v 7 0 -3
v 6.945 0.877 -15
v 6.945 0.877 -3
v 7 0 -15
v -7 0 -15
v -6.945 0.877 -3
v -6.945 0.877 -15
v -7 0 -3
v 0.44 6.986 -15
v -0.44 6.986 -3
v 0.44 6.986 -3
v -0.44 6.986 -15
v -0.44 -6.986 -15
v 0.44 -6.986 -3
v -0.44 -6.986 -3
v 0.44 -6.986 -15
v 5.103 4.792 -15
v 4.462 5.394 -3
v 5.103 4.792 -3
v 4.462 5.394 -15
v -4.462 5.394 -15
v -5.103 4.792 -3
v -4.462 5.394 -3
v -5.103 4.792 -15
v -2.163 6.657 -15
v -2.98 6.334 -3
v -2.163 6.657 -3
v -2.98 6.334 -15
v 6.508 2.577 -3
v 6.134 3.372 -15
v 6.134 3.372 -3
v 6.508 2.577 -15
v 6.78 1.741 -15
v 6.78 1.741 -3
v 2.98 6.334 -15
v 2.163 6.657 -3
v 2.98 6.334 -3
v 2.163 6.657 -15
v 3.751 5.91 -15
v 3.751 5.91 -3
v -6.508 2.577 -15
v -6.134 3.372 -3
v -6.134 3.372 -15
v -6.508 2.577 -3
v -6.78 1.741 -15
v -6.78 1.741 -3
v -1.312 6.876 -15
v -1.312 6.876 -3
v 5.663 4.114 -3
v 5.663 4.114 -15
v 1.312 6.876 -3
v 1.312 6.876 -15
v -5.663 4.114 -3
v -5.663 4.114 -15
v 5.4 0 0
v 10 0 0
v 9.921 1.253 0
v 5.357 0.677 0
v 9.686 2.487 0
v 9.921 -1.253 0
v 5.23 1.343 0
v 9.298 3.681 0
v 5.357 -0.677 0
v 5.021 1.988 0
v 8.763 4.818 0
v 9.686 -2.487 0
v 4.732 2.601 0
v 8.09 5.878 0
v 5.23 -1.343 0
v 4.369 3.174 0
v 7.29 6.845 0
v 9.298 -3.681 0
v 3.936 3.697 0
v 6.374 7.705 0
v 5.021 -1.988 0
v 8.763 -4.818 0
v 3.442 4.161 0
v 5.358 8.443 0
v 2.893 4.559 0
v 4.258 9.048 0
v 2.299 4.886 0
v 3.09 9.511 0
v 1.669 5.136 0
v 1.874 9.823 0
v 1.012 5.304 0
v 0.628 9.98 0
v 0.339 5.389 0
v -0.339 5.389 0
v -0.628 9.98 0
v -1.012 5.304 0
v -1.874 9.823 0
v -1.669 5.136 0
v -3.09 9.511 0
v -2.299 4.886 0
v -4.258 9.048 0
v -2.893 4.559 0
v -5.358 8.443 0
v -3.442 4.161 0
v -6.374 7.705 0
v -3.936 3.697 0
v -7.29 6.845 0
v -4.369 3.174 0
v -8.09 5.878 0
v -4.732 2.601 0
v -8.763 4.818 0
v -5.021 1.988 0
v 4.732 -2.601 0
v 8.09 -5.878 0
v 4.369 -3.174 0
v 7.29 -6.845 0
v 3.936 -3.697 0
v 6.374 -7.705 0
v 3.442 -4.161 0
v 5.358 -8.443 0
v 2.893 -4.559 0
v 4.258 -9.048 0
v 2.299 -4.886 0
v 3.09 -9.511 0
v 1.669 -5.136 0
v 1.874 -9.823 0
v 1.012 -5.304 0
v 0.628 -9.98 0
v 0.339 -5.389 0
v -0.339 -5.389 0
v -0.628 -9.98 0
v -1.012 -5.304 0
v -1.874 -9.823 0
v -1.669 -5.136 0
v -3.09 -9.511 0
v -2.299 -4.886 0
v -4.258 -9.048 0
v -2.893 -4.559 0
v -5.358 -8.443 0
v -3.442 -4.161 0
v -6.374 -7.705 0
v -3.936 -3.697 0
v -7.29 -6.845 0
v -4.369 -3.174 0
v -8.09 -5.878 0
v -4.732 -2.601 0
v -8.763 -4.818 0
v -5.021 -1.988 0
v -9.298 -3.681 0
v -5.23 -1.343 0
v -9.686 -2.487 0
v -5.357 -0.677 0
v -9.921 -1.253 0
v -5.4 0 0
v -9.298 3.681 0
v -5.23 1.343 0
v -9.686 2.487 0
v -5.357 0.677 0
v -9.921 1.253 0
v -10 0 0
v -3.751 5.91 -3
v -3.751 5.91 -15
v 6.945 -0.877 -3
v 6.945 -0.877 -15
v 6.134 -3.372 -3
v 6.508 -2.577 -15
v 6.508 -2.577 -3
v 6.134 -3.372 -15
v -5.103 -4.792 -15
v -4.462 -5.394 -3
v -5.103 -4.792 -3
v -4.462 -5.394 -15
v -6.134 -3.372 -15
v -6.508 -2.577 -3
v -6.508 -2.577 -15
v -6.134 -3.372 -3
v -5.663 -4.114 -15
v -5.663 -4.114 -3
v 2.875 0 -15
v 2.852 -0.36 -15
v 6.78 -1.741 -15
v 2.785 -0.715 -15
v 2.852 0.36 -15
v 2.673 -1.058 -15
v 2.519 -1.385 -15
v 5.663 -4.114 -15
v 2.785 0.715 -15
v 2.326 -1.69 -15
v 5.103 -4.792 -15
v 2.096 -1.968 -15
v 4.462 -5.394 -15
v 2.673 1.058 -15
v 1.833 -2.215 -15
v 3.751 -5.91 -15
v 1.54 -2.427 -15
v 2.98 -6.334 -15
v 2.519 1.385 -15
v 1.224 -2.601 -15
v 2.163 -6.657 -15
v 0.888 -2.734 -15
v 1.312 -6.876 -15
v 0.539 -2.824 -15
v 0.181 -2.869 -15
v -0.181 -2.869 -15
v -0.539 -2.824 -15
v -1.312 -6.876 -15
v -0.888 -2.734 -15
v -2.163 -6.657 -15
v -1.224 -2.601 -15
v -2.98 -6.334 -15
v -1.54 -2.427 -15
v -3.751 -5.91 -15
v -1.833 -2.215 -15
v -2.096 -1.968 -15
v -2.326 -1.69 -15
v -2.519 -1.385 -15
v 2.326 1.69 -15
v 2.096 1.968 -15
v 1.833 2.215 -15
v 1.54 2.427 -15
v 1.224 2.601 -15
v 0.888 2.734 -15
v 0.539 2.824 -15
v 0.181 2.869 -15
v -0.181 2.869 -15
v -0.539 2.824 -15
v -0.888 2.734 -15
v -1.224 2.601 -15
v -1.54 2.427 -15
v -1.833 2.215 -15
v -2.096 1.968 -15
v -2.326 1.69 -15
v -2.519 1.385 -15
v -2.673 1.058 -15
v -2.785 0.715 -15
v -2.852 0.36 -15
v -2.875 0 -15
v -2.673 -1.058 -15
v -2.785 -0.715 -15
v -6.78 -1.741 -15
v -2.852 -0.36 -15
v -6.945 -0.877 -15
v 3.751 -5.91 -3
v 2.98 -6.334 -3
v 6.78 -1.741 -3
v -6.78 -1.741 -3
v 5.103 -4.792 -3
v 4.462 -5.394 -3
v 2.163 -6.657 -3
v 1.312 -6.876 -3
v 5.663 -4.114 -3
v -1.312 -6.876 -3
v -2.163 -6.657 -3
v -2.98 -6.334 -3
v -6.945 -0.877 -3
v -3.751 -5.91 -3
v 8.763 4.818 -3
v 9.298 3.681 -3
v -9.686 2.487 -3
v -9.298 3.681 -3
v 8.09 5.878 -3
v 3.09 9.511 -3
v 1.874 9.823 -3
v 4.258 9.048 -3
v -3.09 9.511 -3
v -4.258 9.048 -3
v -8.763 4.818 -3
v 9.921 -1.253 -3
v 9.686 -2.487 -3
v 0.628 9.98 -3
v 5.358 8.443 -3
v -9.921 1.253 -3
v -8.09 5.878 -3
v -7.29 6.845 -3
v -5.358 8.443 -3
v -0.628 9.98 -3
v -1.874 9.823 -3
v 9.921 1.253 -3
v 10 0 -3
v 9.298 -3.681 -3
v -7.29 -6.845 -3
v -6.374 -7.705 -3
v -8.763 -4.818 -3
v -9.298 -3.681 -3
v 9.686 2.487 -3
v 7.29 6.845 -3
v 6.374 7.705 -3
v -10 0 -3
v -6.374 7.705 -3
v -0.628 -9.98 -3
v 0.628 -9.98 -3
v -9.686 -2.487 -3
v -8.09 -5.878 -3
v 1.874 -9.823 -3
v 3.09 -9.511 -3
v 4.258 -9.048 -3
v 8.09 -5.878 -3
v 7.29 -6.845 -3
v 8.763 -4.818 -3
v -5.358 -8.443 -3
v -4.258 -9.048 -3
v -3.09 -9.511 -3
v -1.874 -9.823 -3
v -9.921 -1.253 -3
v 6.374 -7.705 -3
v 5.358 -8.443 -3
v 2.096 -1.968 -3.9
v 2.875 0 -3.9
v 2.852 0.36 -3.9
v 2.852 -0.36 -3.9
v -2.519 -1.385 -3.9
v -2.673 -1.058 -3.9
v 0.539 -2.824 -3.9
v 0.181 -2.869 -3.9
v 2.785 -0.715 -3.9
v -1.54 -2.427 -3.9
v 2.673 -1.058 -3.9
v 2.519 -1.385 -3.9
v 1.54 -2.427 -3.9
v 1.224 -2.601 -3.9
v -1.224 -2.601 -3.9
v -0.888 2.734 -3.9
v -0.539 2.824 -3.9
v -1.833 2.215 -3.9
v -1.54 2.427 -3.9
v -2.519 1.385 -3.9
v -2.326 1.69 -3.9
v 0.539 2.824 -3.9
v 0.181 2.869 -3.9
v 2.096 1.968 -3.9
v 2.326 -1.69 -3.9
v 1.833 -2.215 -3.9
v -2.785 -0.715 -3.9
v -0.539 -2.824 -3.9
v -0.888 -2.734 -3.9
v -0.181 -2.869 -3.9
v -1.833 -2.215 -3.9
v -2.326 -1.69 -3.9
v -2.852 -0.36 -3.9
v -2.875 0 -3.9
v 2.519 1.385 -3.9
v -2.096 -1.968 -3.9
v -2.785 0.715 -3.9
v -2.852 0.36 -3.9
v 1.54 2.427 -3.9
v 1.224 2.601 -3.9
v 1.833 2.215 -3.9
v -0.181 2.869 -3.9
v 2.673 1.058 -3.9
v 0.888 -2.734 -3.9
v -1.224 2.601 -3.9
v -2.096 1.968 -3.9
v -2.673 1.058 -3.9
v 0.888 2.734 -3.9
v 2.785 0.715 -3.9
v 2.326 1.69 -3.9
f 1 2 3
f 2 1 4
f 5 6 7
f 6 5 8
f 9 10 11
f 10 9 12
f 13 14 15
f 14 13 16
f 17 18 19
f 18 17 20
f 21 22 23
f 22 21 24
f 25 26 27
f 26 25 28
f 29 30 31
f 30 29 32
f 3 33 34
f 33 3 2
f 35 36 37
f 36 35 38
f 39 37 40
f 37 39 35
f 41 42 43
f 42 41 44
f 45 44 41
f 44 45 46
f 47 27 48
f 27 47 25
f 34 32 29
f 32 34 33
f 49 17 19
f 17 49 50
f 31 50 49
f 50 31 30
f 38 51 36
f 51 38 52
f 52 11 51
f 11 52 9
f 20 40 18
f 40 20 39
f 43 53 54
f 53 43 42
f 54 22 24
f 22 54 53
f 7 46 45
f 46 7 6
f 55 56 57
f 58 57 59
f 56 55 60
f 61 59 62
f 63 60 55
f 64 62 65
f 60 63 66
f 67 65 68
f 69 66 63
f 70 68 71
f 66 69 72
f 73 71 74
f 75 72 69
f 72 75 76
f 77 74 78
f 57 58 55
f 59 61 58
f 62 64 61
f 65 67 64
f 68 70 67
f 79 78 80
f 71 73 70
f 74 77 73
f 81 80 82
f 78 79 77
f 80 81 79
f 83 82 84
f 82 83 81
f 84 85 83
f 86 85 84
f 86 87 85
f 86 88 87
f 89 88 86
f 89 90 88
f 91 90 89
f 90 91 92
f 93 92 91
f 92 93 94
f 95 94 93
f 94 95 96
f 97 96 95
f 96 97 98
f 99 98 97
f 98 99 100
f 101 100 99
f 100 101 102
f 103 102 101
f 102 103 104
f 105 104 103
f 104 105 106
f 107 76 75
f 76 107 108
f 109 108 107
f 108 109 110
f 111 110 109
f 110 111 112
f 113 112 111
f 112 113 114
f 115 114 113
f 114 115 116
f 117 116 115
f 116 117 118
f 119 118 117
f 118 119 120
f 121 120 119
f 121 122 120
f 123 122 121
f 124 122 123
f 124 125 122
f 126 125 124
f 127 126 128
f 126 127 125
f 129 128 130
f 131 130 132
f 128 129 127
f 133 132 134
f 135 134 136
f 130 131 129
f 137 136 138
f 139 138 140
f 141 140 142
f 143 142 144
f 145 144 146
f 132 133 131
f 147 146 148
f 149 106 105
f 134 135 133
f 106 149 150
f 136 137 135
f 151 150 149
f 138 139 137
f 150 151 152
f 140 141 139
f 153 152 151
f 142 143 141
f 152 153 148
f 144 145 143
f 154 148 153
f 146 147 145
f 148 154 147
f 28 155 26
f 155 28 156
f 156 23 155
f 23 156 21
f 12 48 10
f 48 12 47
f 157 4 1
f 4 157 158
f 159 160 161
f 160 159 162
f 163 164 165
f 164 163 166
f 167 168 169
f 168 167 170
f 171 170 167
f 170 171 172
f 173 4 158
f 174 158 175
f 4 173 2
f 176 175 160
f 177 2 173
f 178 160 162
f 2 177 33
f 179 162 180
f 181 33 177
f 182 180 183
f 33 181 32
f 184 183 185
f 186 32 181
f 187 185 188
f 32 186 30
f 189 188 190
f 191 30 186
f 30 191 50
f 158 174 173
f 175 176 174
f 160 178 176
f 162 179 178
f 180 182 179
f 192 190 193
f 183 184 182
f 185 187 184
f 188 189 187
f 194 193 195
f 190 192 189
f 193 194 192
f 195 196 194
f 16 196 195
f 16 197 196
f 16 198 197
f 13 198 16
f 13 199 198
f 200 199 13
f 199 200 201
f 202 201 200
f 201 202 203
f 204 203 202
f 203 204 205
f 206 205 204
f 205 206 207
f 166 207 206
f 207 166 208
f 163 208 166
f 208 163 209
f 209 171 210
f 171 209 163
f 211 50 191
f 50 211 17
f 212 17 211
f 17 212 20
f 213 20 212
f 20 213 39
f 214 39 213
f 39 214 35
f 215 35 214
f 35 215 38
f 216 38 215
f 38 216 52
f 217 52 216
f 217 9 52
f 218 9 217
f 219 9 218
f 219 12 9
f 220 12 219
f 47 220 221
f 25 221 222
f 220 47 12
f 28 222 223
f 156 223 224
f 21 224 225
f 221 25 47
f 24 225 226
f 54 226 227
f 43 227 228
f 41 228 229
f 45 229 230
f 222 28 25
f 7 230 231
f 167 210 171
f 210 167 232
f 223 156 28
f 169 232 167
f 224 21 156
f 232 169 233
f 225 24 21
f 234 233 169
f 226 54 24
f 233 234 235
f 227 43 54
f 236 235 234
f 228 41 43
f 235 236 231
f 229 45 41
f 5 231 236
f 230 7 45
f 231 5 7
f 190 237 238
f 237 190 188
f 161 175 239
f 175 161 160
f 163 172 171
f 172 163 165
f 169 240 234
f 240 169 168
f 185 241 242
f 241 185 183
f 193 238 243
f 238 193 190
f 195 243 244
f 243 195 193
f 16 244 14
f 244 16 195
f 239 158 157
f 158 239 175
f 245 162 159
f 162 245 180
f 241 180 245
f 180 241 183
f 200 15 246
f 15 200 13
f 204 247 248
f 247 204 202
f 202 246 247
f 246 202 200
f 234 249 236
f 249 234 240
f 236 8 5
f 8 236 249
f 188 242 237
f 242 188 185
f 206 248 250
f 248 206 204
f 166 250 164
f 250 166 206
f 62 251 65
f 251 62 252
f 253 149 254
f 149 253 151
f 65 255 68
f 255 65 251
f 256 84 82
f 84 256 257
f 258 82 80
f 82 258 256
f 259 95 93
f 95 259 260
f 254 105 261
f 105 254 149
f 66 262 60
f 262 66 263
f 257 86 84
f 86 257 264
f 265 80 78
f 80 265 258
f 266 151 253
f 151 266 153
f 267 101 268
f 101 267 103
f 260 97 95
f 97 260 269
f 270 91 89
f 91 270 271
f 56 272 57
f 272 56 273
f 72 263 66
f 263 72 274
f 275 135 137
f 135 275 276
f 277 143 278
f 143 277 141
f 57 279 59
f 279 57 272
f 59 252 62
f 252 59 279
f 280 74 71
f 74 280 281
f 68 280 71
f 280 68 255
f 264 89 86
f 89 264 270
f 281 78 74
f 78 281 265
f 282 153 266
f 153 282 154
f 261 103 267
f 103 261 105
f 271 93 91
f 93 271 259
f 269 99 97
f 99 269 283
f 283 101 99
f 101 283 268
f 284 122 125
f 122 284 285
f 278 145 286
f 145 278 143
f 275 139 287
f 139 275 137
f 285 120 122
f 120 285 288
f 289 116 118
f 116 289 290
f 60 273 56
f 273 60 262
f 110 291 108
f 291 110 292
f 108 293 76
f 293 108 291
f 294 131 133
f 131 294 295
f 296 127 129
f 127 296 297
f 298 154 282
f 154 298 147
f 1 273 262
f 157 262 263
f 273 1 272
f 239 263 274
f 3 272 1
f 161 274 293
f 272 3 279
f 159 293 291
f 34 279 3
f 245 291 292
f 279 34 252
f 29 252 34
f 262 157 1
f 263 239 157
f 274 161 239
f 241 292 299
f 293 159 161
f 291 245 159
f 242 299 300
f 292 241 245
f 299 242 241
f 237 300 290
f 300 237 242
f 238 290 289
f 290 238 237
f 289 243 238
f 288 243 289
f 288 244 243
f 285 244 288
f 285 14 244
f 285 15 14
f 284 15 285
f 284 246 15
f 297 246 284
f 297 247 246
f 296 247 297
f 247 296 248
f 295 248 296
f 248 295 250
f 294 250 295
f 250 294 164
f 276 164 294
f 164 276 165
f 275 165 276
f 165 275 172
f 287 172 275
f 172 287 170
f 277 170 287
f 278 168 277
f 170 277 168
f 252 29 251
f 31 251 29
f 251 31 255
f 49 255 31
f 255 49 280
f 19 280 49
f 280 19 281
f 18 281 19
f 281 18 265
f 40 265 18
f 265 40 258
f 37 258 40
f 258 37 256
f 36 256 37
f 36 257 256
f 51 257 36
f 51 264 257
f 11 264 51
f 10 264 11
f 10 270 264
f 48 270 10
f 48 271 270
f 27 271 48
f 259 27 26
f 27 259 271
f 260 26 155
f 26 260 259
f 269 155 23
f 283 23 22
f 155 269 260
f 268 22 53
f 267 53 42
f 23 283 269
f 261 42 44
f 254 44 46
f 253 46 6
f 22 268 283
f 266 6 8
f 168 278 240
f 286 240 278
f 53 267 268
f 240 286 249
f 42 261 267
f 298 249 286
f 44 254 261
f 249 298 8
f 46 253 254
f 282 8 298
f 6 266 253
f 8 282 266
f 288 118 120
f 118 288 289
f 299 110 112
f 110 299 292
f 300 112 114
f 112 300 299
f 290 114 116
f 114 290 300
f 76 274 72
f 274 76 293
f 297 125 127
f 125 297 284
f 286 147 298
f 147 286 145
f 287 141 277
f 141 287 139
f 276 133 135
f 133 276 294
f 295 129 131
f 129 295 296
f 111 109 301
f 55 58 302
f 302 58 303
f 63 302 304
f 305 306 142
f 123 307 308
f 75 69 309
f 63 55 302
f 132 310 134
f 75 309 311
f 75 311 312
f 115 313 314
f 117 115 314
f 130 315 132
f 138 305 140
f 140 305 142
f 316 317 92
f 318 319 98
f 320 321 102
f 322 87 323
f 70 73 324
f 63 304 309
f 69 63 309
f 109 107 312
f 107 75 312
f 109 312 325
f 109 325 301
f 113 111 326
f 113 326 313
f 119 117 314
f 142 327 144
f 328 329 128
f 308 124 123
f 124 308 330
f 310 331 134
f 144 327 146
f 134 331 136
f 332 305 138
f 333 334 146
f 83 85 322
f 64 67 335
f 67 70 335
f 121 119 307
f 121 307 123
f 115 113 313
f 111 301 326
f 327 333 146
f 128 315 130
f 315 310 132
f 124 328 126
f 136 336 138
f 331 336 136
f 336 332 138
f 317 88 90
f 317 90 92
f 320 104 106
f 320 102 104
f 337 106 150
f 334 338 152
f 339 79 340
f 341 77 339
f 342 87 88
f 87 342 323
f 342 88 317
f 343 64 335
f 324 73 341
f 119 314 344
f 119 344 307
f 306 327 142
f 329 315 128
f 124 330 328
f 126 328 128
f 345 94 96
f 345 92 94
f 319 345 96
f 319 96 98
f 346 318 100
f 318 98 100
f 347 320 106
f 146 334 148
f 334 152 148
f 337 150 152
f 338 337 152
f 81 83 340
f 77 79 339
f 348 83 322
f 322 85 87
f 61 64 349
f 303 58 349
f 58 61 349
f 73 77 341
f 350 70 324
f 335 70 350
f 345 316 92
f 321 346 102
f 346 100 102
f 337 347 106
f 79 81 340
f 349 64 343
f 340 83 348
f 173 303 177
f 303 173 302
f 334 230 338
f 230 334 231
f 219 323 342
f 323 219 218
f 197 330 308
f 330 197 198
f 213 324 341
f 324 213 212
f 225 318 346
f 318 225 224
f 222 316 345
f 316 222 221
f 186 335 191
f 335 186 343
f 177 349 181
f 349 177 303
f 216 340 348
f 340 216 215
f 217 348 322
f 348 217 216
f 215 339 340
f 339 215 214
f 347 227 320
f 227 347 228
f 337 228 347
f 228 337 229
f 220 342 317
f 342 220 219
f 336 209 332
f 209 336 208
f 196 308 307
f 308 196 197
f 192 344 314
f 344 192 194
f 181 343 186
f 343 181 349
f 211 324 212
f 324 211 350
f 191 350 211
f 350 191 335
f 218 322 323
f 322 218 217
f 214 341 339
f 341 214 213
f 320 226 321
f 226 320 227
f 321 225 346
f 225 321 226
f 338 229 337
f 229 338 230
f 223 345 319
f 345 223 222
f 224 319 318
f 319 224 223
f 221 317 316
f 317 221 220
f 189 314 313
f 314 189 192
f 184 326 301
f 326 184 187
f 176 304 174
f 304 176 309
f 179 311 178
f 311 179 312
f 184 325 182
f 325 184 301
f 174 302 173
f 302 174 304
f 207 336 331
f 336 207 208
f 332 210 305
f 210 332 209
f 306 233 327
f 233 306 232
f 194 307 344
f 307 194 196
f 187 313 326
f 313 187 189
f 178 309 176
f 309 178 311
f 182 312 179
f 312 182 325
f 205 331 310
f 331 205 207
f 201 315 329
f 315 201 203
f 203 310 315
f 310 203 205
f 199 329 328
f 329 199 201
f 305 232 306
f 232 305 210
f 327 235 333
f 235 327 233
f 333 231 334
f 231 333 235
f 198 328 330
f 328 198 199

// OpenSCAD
$fn = 50;


difference() {
	union() {
		translate(v = [0, 0, -15.0000000000]) {
			cylinder(h = 15, r = 7.0000000000);
		}
		translate(v = [0, 0, -3.0000000000]) {
			cylinder(h = 3, r = 10.0000000000);
		}
	}
	union() {
		translate(v = [0, 0, 0]) {
			rotate(a = [0, 0, 0]) {
				difference() {
					union() {
						#translate(v = [0, 0, -15.0000000000]) {
							cylinder(h = 15, r = 2.6000000000);
						}
						#translate(v = [0, 0, -3.9000000000]) {
							cylinder(h = 3.9000000000, r = 7.0000000000, r1 = 2.8750000000, r2 = 5.4000000000);
						}
						#translate(v = [0, 0, -15.0000000000]) {
							cylinder(h = 15, r = 2.8750000000);
						}
						#translate(v = [0, 0, -15.0000000000]) {
							cylinder(h = 15, r = 2.6000000000);
						}
					}
					union();
				}
			}
		}
	}
}
